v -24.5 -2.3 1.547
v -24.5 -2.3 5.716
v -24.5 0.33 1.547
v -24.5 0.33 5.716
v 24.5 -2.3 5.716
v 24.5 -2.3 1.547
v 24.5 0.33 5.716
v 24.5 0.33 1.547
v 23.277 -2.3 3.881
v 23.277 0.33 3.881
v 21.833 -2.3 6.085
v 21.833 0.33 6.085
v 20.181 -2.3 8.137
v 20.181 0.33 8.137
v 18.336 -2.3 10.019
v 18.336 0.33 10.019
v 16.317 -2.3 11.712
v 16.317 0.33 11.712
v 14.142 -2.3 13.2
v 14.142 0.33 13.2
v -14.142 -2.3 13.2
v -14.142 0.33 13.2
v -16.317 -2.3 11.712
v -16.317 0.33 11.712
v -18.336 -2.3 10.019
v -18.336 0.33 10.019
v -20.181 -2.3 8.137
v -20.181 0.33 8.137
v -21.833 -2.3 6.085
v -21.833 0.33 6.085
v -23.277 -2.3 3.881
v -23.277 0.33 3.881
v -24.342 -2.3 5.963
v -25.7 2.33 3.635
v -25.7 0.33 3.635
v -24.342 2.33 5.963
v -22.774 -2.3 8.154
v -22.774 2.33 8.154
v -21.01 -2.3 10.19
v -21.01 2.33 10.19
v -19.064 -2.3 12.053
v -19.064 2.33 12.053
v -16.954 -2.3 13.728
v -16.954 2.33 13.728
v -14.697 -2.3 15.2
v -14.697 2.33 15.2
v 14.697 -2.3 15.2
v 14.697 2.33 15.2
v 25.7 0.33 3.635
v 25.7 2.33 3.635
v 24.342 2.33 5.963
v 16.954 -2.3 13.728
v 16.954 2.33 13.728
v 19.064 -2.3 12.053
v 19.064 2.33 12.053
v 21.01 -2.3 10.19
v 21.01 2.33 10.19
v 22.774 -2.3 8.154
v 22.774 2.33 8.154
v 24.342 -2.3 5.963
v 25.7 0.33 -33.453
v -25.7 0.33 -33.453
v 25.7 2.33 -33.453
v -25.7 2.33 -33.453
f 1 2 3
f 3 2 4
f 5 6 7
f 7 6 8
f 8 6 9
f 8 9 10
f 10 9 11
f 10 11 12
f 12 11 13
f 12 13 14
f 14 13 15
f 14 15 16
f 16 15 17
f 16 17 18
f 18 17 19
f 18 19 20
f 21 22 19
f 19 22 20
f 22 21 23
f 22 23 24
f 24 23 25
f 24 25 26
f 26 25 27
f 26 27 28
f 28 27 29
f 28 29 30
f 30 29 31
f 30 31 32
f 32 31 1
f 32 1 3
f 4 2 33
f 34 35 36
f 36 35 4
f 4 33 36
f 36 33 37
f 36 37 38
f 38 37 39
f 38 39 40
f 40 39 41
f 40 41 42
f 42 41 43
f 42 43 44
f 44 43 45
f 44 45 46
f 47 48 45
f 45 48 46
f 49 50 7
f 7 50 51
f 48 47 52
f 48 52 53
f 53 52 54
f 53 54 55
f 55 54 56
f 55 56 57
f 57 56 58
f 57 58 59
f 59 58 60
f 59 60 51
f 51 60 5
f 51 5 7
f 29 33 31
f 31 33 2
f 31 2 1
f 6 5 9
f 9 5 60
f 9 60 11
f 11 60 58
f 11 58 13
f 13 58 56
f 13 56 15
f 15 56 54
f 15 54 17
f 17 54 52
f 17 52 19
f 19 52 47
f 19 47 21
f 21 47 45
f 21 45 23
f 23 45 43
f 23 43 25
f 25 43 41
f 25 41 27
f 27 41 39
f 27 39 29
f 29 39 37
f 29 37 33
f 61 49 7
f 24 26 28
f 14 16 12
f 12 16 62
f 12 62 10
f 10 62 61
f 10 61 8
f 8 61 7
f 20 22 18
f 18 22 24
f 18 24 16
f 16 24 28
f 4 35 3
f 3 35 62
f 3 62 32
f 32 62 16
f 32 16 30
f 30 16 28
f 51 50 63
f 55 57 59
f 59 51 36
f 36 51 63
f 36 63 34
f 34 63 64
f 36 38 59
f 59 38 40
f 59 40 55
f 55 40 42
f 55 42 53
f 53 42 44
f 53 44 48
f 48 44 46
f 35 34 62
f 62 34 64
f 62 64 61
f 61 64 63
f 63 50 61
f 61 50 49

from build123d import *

# Parameters (mm, degrees)
STOCK_COMPARTMENT_START            = 0.33
STOCK_COMPARTMENT_BOTTOM_1_DEPTH   = 2
STOCK_COMPARTMENT_START_2          = -2.3
STOCK_COMPARTMENT_BOTTOM_1_2_DEPTH = 2.63
BOSS_EXTRUDE1_START                = -2
BOSS_EXTRUDE1_DEPTH                = 2


# Read off the part's stored shape, not the designer's step: Stock-Compartment Bottom-1
with BuildPart() as part:
    # Stock-Compartment Bottom-1 outline → Stock-Compartment Bottom-1 (new body)
    with BuildSketch(Plane(origin=(0, 0, 0), x_dir=(1, 0, 0), z_dir=(0, 1, 0)).offset(STOCK_COMPARTMENT_START)):
        with BuildLine():
            Line((24.5, -5.716120649), (24.5, 8.453194282))
            Line((24.5, 8.453194282), (-24.5, 8.453194282))
            Line((-24.5, 8.453194282), (-24.5, -5.716120649))
            ThreePointArc((-24.5, -5.716120649), (-20.163977484, -11.042600894), (-14.696938457, -15.2))
            Line((-14.696938457, -15.2), (14.696938457, -15.2))
            ThreePointArc((14.696938457, -15.2), (20.163977484, -11.042600894), (24.5, -5.716120649))
        make_face()
    extrude(amount=STOCK_COMPARTMENT_BOTTOM_1_DEPTH)

    # Stock-Compartment Bottom-1 2 outline → Stock-Compartment Bottom-1 2 (add)
    with BuildSketch(Plane(origin=(0, 0, 0), x_dir=(1, 0, 0), z_dir=(0, 1, 0)).offset(STOCK_COMPARTMENT_START_2)):
        with BuildLine():
            Line((24.5, -5.716120649), (24.5, -1.546805718))
            ThreePointArc((24.5, -1.546805718), (20.180507814, -8.137310399), (14.142135624, -13.2))
            Line((14.142135624, -13.2), (-14.142135624, -13.2))
            ThreePointArc((-14.142135624, -13.2), (-20.180507814, -8.137310399), (-24.5, -1.546805718))
            Line((-24.5, -1.546805718), (-24.5, -5.716120649))
            ThreePointArc((-24.5, -5.716120649), (-20.163977484, -11.042600894), (-14.696938457, -15.2))
            Line((-14.696938457, -15.2), (14.696938457, -15.2))
            ThreePointArc((14.696938457, -15.2), (20.163977484, -11.042600894), (24.5, -5.716120649))
        make_face()
    extrude(amount=STOCK_COMPARTMENT_BOTTOM_1_2_DEPTH)

    # Sketch1 → Boss-Extrude1 (add)
    with BuildSketch(Plane(origin=(0, 2.33, 0), x_dir=(1, 0, 0), z_dir=(0, 1, 0)).offset(BOSS_EXTRUDE1_START)):
        with BuildLine():
            Line((-25.7, 33.453194282), (-25.7, 8.453194282))
            Line((-25.7, 8.453194282), (-25.7, -3.635400999))
            ThreePointArc((-25.7, -3.635400999), (-25.121551476, -4.688190068), (-24.5, -5.716120649))
            Line((-24.5, -5.716120649), (-24.5, 8.453194282))
            Line((-24.5, 8.453194282), (24.5, 8.453194282))
            Line((24.5, 8.453194282), (24.5, -5.716120649))
            ThreePointArc((24.5, -5.716120649), (25.121551476, -4.688190068), (25.7, -3.635400999))
            Line((25.7, -3.635400999), (25.7, 8.453194282))
            Line((25.7, 8.453194282), (25.7, 33.453194282))
            Line((25.7, 33.453194282), (-25.7, 33.453194282))
        make_face()
    extrude(amount=BOSS_EXTRUDE1_DEPTH)


solid = part.part
